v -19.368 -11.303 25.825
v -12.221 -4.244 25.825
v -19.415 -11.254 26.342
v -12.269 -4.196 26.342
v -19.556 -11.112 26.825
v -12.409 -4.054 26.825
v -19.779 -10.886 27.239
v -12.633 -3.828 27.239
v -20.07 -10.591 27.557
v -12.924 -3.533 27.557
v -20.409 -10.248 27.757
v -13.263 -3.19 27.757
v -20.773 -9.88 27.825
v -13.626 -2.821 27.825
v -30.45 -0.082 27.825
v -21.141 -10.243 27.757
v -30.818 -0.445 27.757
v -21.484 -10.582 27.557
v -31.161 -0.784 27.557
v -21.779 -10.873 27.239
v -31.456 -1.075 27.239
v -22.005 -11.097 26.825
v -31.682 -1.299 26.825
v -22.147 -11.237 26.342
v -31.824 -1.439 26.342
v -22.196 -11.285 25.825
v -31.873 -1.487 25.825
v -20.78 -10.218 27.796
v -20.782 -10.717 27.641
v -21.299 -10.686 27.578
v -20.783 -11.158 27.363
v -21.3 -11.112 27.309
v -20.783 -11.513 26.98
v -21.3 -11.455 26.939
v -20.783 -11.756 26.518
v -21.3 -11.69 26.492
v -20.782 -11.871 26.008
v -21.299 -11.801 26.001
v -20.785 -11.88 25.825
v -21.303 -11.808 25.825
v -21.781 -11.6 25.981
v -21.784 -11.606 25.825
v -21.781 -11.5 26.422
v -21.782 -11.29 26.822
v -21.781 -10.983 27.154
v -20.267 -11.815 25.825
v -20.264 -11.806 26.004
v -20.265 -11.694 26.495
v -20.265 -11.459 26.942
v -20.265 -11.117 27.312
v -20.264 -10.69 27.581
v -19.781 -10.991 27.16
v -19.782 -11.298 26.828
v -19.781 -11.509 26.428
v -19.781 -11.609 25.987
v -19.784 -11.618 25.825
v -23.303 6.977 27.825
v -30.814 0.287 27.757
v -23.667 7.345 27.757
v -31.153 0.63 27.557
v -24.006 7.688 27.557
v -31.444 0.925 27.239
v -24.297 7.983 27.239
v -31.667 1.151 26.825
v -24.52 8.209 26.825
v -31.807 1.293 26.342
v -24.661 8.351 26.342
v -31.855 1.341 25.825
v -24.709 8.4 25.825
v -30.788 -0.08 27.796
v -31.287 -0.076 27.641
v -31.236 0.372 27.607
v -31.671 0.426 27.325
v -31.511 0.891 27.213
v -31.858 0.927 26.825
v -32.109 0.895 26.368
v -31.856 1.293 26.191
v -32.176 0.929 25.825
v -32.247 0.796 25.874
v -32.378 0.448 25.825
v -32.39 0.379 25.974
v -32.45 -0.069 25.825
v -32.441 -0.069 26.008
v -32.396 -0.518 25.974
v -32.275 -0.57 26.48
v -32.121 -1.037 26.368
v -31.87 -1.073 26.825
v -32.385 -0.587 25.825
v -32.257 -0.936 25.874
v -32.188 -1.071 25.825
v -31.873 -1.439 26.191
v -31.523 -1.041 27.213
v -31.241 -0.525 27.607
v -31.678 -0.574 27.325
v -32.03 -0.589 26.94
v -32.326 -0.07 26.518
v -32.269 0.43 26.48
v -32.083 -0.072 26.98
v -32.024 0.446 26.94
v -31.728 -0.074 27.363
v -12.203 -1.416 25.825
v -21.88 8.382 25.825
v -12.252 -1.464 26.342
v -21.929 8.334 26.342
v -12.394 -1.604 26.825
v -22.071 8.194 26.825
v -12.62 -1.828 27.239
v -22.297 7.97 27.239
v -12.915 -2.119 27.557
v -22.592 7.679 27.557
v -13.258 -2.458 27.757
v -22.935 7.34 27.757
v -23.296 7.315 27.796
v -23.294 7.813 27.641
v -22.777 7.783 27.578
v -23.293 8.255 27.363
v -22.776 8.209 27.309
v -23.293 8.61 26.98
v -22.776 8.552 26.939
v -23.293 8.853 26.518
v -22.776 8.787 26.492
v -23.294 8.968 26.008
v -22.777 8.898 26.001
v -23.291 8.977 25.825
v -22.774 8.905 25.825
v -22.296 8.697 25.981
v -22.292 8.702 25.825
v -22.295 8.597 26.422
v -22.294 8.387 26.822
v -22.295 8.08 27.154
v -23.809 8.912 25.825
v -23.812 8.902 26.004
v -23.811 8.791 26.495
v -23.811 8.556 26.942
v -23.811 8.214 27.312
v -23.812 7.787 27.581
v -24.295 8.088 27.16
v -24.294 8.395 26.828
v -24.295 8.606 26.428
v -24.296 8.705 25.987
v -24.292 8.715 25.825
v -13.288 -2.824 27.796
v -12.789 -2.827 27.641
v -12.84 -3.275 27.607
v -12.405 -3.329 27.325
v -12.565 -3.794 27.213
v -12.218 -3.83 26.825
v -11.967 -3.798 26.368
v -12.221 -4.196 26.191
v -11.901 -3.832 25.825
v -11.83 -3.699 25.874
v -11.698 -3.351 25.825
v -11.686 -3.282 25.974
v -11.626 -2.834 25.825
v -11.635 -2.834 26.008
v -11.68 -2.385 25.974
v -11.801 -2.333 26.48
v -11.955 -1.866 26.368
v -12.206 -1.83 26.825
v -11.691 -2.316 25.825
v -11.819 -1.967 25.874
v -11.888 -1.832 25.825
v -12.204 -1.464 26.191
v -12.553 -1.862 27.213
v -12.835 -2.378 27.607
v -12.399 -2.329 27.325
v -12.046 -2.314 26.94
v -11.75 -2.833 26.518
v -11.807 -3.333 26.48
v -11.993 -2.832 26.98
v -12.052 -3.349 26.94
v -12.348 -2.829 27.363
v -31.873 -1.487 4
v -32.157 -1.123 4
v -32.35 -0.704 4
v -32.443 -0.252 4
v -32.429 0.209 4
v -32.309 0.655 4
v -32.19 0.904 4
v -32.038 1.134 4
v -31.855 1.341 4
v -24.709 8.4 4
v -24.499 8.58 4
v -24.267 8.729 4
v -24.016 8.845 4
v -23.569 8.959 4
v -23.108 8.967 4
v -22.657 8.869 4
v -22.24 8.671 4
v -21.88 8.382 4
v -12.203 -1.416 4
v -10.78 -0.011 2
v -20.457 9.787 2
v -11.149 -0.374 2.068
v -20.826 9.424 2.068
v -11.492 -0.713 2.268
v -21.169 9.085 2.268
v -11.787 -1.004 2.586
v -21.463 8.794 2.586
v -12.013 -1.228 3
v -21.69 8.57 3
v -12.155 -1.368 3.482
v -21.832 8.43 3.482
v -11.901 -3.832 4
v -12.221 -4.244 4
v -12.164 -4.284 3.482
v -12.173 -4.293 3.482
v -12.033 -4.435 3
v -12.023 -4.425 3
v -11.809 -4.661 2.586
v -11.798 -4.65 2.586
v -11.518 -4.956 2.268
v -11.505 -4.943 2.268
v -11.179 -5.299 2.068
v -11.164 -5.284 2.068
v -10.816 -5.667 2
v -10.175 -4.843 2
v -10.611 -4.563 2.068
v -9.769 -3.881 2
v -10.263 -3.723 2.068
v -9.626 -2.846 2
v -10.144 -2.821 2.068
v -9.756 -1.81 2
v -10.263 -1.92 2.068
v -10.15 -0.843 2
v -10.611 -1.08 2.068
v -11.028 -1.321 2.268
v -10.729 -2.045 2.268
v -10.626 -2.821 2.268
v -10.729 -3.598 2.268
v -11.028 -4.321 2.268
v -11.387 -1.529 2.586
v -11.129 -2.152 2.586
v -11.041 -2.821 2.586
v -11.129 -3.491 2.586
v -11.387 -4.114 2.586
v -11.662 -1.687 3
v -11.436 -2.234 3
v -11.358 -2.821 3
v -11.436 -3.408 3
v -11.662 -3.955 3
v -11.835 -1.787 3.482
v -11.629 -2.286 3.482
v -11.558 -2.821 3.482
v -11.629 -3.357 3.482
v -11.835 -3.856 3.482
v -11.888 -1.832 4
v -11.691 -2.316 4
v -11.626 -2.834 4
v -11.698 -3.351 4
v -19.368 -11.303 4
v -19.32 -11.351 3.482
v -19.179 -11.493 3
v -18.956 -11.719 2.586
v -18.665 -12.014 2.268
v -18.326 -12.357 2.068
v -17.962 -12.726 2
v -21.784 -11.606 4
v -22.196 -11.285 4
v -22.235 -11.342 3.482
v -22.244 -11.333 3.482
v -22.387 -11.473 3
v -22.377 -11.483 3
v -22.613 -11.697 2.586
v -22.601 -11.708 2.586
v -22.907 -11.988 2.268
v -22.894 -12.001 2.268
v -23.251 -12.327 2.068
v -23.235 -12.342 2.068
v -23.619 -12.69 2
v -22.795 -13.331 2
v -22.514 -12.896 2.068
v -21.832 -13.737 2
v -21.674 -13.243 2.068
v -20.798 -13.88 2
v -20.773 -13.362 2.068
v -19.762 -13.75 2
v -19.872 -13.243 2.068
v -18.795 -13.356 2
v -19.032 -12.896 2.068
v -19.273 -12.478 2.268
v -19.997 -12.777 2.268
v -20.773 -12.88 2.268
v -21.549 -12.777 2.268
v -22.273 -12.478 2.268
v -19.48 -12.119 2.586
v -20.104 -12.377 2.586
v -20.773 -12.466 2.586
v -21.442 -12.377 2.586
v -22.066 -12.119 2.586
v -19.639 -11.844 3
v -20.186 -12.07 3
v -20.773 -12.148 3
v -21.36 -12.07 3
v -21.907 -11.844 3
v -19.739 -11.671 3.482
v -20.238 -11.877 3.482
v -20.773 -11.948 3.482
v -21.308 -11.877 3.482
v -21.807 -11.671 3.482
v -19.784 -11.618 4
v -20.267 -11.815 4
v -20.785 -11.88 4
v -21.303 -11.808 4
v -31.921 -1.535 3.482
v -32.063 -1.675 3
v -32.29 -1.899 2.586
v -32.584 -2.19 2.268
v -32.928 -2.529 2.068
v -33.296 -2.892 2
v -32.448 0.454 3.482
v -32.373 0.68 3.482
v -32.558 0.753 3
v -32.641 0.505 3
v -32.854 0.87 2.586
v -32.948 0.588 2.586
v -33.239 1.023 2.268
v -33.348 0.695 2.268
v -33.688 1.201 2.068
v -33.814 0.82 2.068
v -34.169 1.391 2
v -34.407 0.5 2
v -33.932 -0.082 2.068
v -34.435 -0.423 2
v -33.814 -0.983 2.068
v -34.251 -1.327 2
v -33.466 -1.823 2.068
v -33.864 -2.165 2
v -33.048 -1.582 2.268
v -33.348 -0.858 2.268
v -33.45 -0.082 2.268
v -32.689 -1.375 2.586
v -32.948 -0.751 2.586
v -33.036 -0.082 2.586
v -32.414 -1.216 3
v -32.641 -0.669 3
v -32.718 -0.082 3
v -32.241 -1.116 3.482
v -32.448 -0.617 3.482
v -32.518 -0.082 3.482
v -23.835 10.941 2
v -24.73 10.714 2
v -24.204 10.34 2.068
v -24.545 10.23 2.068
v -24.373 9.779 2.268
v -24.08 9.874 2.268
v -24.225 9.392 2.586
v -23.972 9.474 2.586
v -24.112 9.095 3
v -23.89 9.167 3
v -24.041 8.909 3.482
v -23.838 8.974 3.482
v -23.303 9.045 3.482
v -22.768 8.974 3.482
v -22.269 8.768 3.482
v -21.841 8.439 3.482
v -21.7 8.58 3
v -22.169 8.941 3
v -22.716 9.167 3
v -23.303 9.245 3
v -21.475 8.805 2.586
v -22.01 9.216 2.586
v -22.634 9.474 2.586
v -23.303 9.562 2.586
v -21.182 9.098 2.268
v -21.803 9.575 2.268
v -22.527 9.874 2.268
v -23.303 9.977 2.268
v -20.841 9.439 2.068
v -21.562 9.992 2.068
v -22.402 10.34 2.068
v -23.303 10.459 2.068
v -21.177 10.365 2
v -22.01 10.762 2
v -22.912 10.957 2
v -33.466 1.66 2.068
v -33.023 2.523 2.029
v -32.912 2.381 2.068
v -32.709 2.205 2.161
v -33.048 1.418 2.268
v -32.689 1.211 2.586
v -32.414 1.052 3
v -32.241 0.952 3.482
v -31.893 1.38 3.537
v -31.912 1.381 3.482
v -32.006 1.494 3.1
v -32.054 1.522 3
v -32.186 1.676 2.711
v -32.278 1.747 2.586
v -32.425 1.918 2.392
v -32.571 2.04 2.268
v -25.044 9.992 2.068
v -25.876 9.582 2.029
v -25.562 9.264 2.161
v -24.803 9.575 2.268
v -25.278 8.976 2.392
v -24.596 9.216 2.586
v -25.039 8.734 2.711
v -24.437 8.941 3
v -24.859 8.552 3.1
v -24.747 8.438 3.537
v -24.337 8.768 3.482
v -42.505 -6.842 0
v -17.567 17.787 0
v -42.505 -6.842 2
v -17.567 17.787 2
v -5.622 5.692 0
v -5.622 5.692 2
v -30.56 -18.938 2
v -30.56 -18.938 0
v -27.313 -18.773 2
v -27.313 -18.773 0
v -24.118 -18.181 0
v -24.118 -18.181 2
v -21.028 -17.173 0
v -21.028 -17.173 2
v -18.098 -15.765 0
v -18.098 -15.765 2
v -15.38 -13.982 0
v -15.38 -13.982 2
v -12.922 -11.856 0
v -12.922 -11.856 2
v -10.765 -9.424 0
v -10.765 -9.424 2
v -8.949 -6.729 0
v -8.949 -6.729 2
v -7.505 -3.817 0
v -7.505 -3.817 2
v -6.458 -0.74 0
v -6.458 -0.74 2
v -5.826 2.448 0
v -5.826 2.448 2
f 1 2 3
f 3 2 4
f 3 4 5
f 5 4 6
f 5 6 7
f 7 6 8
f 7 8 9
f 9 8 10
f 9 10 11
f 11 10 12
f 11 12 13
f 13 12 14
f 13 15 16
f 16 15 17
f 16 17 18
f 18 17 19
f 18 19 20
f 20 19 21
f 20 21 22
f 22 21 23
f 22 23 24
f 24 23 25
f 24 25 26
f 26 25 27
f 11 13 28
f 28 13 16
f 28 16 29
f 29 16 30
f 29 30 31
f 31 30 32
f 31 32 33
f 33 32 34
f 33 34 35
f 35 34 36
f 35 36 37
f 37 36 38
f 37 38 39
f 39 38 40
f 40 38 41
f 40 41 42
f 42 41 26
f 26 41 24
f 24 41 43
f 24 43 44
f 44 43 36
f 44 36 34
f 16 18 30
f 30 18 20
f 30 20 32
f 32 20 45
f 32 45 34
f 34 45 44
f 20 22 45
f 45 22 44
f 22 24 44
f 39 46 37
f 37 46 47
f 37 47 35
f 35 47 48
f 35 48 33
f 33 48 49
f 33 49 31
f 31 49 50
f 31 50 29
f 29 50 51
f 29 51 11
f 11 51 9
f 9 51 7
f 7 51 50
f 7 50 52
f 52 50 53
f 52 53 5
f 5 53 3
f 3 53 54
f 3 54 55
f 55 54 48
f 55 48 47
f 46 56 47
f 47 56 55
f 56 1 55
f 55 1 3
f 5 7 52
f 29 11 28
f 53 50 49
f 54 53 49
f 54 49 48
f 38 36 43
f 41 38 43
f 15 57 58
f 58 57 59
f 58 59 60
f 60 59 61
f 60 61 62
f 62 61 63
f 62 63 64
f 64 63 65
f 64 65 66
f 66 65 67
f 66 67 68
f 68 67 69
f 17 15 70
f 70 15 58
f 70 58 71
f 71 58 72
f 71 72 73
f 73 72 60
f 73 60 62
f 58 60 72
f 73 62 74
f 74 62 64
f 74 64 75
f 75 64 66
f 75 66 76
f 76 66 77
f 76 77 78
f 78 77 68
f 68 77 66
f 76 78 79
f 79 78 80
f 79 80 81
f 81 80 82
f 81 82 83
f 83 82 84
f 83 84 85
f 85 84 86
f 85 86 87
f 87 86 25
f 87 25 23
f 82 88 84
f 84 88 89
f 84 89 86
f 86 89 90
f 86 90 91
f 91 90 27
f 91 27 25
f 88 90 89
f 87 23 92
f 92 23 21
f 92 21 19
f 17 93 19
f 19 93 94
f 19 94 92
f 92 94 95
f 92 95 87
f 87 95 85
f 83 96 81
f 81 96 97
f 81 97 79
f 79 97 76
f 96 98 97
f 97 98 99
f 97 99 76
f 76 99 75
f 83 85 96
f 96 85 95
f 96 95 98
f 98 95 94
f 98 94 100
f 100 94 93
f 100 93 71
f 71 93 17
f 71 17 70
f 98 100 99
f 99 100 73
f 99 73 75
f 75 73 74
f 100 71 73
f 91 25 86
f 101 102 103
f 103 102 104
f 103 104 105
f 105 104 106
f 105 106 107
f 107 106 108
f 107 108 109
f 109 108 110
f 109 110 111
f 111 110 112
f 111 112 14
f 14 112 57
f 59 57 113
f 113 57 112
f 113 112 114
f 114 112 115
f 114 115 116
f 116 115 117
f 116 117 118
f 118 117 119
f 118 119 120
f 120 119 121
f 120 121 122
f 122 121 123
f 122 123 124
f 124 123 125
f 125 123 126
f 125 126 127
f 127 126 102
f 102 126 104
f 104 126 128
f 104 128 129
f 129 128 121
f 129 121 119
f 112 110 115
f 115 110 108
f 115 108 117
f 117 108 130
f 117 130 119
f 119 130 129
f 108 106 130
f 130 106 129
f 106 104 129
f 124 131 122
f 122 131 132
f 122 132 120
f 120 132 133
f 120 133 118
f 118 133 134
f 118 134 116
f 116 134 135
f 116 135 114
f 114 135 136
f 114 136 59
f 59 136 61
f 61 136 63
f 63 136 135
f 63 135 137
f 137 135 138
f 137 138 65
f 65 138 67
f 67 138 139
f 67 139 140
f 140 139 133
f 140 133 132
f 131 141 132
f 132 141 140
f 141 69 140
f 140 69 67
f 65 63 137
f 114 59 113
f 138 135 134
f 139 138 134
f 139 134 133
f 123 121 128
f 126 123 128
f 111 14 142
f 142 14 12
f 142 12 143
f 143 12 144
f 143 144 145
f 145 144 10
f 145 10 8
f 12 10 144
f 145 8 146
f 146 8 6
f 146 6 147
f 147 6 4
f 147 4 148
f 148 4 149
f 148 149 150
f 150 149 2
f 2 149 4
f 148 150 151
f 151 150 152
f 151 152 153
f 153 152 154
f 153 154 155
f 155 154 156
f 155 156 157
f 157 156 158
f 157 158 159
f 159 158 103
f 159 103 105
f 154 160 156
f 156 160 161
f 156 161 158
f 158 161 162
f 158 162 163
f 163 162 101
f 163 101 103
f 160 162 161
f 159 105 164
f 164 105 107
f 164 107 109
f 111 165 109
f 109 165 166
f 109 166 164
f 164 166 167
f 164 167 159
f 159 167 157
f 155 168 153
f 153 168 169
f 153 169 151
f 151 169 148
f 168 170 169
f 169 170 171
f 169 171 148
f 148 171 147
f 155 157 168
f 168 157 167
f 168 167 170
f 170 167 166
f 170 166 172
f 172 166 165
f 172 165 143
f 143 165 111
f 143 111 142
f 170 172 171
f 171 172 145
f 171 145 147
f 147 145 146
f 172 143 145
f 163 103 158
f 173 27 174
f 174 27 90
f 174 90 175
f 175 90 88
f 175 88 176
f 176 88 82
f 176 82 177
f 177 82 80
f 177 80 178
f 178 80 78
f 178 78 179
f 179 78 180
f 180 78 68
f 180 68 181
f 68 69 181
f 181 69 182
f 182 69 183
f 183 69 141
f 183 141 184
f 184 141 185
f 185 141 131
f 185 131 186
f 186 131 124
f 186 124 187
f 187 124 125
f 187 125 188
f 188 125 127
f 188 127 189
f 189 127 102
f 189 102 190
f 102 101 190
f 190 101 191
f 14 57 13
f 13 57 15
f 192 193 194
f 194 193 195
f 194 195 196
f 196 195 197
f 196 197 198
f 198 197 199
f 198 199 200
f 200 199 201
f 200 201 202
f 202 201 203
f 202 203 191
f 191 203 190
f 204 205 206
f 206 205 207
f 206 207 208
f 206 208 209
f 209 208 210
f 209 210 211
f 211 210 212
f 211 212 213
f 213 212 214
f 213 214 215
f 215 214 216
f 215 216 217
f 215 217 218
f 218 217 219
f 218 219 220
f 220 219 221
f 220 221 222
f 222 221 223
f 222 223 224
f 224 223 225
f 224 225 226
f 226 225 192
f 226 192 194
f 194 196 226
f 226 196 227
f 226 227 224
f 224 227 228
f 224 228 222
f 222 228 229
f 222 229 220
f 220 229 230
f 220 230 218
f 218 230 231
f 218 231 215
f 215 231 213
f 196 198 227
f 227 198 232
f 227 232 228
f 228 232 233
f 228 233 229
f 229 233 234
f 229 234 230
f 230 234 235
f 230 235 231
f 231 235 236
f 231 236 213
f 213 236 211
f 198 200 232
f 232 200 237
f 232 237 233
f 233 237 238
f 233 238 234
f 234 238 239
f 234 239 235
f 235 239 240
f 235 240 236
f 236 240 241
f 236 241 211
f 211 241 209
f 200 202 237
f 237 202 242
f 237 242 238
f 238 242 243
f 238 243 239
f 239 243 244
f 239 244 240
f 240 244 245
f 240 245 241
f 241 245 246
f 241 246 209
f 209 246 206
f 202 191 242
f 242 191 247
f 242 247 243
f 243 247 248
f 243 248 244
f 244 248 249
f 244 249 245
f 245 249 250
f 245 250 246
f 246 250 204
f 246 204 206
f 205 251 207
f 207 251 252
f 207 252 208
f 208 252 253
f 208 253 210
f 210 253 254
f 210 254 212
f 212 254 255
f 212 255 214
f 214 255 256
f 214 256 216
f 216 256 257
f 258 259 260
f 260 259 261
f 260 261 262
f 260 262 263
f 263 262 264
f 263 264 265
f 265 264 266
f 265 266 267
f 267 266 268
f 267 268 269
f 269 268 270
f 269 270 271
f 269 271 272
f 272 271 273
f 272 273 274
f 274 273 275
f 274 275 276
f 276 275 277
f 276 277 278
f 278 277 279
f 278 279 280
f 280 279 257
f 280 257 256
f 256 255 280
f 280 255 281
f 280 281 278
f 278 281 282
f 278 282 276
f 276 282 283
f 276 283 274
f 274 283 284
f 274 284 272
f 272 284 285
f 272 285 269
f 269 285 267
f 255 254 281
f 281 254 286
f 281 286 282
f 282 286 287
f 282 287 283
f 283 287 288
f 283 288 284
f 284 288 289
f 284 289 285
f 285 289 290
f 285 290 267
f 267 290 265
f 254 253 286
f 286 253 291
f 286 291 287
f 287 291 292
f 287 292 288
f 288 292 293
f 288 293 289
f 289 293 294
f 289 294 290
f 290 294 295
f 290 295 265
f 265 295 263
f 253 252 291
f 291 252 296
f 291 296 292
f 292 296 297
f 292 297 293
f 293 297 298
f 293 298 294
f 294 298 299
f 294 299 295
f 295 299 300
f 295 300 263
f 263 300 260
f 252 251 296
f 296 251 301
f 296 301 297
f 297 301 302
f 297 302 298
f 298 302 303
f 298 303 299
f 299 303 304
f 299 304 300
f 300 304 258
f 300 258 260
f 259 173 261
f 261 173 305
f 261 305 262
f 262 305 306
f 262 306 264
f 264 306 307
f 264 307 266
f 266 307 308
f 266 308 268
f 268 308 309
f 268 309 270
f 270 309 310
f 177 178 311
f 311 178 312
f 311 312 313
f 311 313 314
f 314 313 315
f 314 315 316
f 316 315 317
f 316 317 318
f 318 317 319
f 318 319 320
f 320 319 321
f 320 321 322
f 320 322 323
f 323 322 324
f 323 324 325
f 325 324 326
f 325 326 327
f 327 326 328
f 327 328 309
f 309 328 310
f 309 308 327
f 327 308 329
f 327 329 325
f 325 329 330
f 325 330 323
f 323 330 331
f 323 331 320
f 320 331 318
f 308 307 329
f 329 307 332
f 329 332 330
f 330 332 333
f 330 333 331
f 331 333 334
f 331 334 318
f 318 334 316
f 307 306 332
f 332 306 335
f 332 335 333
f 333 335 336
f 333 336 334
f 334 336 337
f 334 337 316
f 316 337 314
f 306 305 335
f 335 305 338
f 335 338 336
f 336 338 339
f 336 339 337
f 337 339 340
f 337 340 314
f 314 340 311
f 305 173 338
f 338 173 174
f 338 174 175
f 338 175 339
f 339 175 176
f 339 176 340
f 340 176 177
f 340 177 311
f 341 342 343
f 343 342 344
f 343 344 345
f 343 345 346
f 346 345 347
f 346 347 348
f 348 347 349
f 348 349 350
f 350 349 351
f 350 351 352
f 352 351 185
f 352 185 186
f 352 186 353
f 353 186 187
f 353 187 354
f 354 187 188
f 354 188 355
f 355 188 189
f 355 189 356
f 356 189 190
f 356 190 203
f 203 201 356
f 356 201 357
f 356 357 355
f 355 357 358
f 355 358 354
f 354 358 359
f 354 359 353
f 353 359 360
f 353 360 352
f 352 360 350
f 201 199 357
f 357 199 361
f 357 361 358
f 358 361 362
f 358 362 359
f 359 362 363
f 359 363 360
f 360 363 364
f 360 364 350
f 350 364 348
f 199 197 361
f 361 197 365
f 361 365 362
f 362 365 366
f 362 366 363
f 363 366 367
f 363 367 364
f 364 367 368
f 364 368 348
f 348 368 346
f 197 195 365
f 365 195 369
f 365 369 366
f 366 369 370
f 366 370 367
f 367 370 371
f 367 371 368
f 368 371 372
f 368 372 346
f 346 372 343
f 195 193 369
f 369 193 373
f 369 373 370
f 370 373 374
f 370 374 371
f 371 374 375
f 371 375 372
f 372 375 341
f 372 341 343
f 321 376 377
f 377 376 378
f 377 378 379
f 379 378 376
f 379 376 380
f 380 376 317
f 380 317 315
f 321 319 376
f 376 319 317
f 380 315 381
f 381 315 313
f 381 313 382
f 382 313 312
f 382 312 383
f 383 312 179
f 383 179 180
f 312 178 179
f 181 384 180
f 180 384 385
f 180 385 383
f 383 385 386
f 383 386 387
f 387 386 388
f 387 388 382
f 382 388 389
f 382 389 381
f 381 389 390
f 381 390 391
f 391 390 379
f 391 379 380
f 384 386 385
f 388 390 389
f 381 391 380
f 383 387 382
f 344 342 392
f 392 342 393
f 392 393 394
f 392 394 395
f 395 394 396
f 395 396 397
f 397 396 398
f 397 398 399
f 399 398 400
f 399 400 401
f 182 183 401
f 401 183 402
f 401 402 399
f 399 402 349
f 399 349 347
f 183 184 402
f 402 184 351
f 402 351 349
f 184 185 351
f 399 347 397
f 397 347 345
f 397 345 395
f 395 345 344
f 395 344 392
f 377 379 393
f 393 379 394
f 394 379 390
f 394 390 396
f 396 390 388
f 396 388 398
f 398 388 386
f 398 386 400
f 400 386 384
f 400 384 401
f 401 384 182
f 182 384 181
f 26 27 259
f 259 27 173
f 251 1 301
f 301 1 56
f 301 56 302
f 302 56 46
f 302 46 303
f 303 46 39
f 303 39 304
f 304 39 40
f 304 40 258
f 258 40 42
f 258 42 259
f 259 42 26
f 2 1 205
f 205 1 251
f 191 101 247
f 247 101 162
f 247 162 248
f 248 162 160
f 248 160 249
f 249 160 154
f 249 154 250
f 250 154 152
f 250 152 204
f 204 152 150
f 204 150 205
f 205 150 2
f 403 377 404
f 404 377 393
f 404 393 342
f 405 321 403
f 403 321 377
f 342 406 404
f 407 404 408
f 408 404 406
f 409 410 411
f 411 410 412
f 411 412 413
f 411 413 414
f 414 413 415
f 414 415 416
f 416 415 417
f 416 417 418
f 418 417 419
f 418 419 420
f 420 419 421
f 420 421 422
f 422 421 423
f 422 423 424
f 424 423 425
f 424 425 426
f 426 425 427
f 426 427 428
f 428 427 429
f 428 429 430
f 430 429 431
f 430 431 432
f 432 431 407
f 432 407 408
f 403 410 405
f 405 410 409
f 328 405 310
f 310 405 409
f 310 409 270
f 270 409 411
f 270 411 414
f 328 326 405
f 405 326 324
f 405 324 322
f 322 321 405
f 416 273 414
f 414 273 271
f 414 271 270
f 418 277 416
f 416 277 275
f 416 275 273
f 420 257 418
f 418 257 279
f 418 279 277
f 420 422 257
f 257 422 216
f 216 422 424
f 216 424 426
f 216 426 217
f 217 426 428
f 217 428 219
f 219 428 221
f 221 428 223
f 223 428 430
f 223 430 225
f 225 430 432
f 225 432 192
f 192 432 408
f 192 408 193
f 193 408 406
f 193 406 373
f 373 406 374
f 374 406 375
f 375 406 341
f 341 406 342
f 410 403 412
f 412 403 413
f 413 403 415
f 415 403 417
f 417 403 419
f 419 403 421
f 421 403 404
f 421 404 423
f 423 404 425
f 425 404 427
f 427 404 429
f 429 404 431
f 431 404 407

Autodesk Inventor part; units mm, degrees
ref_plane "YZ Plane" through (0, 0, 0) normal (1, 0, 0) x (0, 1, 0)
ref_plane "XZ Plane" through (0, 0, 0) normal (0, 1, 0) x (-1, 0, 0)
ref_plane "XY Plane" through (0, 0, 0) normal (0, 0, 1) x (1, 0, 0)
ref_plane "Plan de construction1" through (0, 0, 0) normal (0, 0, 1) x (1, 0, 0)
sketch "Esquisse1" plane through (0, 0, 0) normal (0, 0, 1) x (1, 0, 0)
  line L0 (12.600402, 13.369459) -> (-37.128252, -35.732002)
  line L1 (-42.505343, -6.84222) -> (-16.505712, -33.167478)
  line L2 (8.432313, -8.537922) -> (-17.567318, 17.787336)
  line L3 (-17.567318, 17.787336) -> (-42.505343, -6.84222)
  spline S0 degree 3 poles (-30.559567, -18.937609) (-29.251135, -19.178539) (-27.810091, -19.446017) (-24.924717, -19.685136) (-23.47934, -19.643963) (-21.695605, -19.298823) (-21.177712, -19.167045) (-20.168818, -18.825553) (-19.677941, -18.615468) (-18.84768, -18.187738) (-18.426343, -17.934552) (-17.631099, -17.362687) (-17.257309, -17.043846) (-16.938864, -16.72934) knots 0 0 0 0 0.39912855 0.39912855 0.7982571 0.7982571 0.94417416 0.94417416 1.09009122 1.09009122 1.22436299 1.22436299 1.35863477 1.35863477 1.35863477 1.35863477
  spline S1 degree 3 poles (-7.999161, -7.900216) (-7.680716, -7.58571) (-7.357248, -7.215917) (-6.77553, -6.427852) (-6.517119, -6.009699) (-6.079089, -5.184826) (-5.862912, -4.696602) (-5.508889, -3.692036) (-5.370676, -3.175823) (-5.003363, -1.396522) (-4.944203, 0.048231) (-5.147393, 2.936358) (-5.396916, 4.380619) (-5.621542, 5.691948) knots 3.77145385 3.77145385 3.77145385 3.77145385 3.90572563 3.90572563 4.0399974 4.0399974 4.18591446 4.18591446 4.33183152 4.33183152 4.73096007 4.73096007 5.13008862 5.13008862 5.13008862 5.13008862
  line L4 (-16.938864, -16.72934) -> (-7.999161, -7.900216)
  line L5 (-17.567318, 17.787336) -> (-5.621542, 5.691948)
  line L6 (-17.567318, 17.787336) -> (-42.505343, -6.84222)
  line L7 (-42.505343, -6.84222) -> (-30.559567, -18.937609)
  arc A0 (-30.559567, -18.937609) -> (-5.621542, 5.691948) centre (-30.176225, 5.614205) ccw
  point P0 (0, 0)
extrude "Extrusion1" add sketch "Esquisse1" along normal blind 2 contours A0 L0 L1 L3 L2 | A0 L0
sketch "Esquisse2" plane through (0, 0, 2) normal (0, 0, 1) x (1, 0, 0)
  line L0 (37.657428, -63.069018) -> (-69.549529, 45.480633)
  line L1 (37.657428, -63.069018) -> (-69.549529, 45.480633)
  line L2 (-29.434692, -3.955721) -> (-33.278207, -0.064069)
  line L3 (-33.278207, -0.064069) -> (-23.285586, 9.804949)
  line L4 (-23.285586, 9.804949) -> (-19.442072, 5.913297)
  line L5 (-24.775557, -8.673208) -> (-20.790583, -12.708092)
  line L6 (-20.790583, -12.708092) -> (-10.797962, -2.839074)
  line L7 (-10.797962, -2.839074) -> (-14.782937, 1.195809)
  line L8 (-24.775557, -8.673208) -> (-29.434692, -3.955721)
  line L9 (-19.442072, 5.913297) -> (-14.782937, 1.195809)
  point P0 (0, 0)
  point P1 (-20.366346, -4.318536)
extrude "Extrusion2" add sketch "Esquisse2" along normal blind 10
sketch "Esquisse6" plane through (-23.285586, 9.804949, 12) normal (0.7114935, 0.7026927, 0) x (0, 0, -1)
  line L0 (0, 0) -> (-15.824808, 0)
  line L1 (-15.824808, 0) -> (-15.824808, -17.771102)
  line L2 (-15.824808, -17.771102) -> (0, -17.771102)
  line L3 (0, -17.771102) -> (0, 0)
  point P0 (12, -23.338769)
  point P1 (0, -17.771102)
extrude "Extrusion6" add sketch "Esquisse6" against normal up to surface (14.044571 mm away)
fillet "Congé4" radius 2 8 edges at (-33.2782, -0.0641, 14.9124) (-23.2856, 9.8049, 14.9124) (-20.7906, -12.7081, 14.9124) (-15.7943, -7.7736, 2) (-17.0418, 3.4829, 2) (-27.0344, -6.3861, 2) (-28.2819, 4.8704, 2) (-10.798, -2.8391, 14.9124)
fillet_without_effect "Congé6"
fillet "Congé7" radius 2 8 edges at (-11.6264, -2.8339, 27.8248) (-32.4498, -0.0692, 27.8248) (-20.7854, -11.8797, 27.8248) (-15.7943, -7.7736, 27.8248) (-23.2907, 8.9765, 27.8248) (-17.0418, 3.4829, 27.8248) (-28.2819, 4.8704, 27.8248) (-27.0344, -6.3861, 27.8248)
properties part number "palette_push"
